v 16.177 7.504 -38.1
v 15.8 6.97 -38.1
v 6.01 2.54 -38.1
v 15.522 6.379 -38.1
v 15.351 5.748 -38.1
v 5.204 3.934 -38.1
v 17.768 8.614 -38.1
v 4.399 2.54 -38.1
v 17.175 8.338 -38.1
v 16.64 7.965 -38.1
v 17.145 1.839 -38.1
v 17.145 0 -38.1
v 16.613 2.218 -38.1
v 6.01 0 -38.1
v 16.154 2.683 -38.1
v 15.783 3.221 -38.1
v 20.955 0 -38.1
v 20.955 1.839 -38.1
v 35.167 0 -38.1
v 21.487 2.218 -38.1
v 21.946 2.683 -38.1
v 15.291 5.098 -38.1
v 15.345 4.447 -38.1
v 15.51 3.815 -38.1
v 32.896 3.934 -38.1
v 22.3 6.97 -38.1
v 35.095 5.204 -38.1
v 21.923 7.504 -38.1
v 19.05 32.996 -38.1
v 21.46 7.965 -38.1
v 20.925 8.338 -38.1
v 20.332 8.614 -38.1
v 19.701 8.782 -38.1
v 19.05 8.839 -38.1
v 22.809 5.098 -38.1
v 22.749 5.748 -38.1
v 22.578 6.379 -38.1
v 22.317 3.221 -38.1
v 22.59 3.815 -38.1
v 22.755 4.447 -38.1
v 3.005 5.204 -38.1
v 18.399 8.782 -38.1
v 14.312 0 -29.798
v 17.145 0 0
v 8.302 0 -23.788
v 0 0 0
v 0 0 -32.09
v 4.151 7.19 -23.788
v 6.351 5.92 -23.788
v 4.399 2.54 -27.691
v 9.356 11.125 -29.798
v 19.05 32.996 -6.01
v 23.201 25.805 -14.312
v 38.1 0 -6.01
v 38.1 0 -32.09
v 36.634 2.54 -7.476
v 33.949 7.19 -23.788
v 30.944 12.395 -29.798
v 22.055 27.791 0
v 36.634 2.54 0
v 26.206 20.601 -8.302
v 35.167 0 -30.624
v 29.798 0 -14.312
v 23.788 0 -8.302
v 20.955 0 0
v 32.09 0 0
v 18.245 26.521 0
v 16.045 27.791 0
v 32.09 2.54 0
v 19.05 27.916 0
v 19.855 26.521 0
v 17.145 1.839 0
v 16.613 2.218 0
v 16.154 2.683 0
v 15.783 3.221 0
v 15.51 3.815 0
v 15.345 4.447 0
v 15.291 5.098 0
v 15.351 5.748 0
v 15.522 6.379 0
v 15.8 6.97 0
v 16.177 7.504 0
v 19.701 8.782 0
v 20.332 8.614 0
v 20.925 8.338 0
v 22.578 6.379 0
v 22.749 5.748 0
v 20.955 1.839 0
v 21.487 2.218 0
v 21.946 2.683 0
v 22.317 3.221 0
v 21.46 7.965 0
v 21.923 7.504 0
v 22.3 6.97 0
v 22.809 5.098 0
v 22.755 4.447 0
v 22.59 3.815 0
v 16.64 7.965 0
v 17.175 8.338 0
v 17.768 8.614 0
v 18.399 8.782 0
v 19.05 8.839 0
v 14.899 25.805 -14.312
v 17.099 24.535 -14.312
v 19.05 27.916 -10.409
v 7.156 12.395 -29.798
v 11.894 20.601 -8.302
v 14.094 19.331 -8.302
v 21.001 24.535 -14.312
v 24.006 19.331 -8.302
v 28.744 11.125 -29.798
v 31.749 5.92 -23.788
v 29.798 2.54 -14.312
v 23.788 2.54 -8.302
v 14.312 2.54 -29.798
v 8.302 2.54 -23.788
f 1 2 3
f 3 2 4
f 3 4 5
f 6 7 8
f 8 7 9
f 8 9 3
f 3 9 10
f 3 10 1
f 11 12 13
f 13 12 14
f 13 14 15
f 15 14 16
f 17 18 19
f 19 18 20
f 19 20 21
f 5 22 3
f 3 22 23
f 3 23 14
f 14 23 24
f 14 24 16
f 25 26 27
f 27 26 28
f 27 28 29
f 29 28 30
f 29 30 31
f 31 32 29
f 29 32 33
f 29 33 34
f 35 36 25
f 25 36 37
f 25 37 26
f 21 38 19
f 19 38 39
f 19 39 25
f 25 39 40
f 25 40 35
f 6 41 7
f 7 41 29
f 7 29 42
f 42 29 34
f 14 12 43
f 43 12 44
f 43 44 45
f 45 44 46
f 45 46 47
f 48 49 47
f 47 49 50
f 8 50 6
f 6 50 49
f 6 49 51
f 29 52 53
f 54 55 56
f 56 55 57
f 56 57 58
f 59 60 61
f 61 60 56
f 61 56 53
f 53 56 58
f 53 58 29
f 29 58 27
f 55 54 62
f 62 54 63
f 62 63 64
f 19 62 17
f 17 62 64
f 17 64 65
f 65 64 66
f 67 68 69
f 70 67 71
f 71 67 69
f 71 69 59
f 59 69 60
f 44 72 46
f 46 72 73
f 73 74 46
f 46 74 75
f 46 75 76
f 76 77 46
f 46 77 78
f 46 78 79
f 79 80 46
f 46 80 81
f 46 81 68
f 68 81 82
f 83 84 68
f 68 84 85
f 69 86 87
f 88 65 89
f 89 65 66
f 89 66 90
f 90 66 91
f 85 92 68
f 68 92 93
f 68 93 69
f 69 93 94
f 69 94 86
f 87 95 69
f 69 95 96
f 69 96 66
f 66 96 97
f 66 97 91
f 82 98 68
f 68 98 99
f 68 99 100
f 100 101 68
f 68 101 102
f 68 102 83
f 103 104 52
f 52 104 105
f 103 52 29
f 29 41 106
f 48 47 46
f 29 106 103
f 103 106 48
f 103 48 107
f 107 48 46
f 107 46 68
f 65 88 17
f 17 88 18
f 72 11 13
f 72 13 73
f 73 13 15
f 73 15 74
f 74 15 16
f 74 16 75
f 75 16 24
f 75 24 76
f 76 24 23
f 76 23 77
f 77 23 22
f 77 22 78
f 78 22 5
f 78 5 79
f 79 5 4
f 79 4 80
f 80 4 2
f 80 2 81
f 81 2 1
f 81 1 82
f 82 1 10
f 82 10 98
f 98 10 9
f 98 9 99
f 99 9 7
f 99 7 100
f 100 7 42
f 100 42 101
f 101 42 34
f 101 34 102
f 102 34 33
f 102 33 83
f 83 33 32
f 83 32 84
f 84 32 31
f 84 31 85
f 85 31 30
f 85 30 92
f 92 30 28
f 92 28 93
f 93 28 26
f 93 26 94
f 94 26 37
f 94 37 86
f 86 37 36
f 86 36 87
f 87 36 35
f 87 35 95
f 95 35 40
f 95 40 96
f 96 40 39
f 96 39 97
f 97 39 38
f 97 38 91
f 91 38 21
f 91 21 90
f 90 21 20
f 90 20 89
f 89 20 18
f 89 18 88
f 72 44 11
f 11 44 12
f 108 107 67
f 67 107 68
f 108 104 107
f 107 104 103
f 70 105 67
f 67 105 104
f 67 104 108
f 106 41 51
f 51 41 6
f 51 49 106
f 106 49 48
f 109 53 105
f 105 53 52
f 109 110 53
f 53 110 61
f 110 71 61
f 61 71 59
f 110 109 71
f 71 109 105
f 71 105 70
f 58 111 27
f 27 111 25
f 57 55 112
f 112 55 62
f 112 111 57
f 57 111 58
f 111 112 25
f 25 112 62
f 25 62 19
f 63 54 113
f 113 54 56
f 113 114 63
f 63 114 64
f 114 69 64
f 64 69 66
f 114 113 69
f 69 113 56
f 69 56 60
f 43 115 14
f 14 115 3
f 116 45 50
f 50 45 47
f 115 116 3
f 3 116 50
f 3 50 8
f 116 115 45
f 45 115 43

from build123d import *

# Parameters (mm, degrees)
MAIN_TRAPIZOID_DEPTH = 38.1
CUT_EXTRUDE3_DEPTH   = 64.181702256
MARKER_CHANNEL_DEPTH = 2.54


with BuildPart() as part:
    # Sketch1 → Main trapizoid (new body)
    with BuildSketch(Plane.XY):
        Polygon((0, 0), (19.05, 32.995567884), (38.1, 0), align=None)
    extrude(amount=-MAIN_TRAPIZOID_DEPTH)

    # Sketch15 → Cut-Extrude3 (cut, through all)
    with BuildSketch(Plane.XY.offset(-38.1)):
        with BuildLine():
            Line((17.145, 0), (17.145, 1.839234714))
            ThreePointArc((17.145, 1.839234714), (19.05, 8.8392), (20.955, 1.839234714))
            Line((20.955, 1.839234714), (20.955, 0))
            Line((20.955, 0), (17.145, 0))
        make_face()
    extrude(amount=CUT_EXTRUDE3_DEPTH, mode=Mode.SUBTRACT)

    # Sketch4 → Marker channel (cut)
    with BuildSketch(Plane(origin=(0, 0, 0), x_dir=(0, 0, 1), z_dir=(-0.8660254037844386, 0.5000000000000001, 0))):
        Polygon((2.773894864, 46.88348226), (8.78348226, 40.873894864), (-8.302387048, 23.788025556), (-14.311974444, 29.797612952), align=None)
        Polygon((-23.788025556, 8.302387048), (-29.797612952, 14.311974444), (-46.88348226, -2.773894864), (-40.873894864, -8.78348226), align=None)
    marker_channel = extrude(amount=-MARKER_CHANNEL_DEPTH, mode=Mode.SUBTRACT)

    # Mirror1: Marker channel across plane
    add(marker_channel.mirror(Plane.ZY.offset(-19.05)), mode=Mode.SUBTRACT)

    # Mirror2: Marker channel across plane
    add(marker_channel.mirror(Plane(origin=(0, 0, 0), x_dir=(0, 0, 1), z_dir=(-0.5000000000000001, 0.8660254037844386, 0))), mode=Mode.SUBTRACT)


solid = part.part
